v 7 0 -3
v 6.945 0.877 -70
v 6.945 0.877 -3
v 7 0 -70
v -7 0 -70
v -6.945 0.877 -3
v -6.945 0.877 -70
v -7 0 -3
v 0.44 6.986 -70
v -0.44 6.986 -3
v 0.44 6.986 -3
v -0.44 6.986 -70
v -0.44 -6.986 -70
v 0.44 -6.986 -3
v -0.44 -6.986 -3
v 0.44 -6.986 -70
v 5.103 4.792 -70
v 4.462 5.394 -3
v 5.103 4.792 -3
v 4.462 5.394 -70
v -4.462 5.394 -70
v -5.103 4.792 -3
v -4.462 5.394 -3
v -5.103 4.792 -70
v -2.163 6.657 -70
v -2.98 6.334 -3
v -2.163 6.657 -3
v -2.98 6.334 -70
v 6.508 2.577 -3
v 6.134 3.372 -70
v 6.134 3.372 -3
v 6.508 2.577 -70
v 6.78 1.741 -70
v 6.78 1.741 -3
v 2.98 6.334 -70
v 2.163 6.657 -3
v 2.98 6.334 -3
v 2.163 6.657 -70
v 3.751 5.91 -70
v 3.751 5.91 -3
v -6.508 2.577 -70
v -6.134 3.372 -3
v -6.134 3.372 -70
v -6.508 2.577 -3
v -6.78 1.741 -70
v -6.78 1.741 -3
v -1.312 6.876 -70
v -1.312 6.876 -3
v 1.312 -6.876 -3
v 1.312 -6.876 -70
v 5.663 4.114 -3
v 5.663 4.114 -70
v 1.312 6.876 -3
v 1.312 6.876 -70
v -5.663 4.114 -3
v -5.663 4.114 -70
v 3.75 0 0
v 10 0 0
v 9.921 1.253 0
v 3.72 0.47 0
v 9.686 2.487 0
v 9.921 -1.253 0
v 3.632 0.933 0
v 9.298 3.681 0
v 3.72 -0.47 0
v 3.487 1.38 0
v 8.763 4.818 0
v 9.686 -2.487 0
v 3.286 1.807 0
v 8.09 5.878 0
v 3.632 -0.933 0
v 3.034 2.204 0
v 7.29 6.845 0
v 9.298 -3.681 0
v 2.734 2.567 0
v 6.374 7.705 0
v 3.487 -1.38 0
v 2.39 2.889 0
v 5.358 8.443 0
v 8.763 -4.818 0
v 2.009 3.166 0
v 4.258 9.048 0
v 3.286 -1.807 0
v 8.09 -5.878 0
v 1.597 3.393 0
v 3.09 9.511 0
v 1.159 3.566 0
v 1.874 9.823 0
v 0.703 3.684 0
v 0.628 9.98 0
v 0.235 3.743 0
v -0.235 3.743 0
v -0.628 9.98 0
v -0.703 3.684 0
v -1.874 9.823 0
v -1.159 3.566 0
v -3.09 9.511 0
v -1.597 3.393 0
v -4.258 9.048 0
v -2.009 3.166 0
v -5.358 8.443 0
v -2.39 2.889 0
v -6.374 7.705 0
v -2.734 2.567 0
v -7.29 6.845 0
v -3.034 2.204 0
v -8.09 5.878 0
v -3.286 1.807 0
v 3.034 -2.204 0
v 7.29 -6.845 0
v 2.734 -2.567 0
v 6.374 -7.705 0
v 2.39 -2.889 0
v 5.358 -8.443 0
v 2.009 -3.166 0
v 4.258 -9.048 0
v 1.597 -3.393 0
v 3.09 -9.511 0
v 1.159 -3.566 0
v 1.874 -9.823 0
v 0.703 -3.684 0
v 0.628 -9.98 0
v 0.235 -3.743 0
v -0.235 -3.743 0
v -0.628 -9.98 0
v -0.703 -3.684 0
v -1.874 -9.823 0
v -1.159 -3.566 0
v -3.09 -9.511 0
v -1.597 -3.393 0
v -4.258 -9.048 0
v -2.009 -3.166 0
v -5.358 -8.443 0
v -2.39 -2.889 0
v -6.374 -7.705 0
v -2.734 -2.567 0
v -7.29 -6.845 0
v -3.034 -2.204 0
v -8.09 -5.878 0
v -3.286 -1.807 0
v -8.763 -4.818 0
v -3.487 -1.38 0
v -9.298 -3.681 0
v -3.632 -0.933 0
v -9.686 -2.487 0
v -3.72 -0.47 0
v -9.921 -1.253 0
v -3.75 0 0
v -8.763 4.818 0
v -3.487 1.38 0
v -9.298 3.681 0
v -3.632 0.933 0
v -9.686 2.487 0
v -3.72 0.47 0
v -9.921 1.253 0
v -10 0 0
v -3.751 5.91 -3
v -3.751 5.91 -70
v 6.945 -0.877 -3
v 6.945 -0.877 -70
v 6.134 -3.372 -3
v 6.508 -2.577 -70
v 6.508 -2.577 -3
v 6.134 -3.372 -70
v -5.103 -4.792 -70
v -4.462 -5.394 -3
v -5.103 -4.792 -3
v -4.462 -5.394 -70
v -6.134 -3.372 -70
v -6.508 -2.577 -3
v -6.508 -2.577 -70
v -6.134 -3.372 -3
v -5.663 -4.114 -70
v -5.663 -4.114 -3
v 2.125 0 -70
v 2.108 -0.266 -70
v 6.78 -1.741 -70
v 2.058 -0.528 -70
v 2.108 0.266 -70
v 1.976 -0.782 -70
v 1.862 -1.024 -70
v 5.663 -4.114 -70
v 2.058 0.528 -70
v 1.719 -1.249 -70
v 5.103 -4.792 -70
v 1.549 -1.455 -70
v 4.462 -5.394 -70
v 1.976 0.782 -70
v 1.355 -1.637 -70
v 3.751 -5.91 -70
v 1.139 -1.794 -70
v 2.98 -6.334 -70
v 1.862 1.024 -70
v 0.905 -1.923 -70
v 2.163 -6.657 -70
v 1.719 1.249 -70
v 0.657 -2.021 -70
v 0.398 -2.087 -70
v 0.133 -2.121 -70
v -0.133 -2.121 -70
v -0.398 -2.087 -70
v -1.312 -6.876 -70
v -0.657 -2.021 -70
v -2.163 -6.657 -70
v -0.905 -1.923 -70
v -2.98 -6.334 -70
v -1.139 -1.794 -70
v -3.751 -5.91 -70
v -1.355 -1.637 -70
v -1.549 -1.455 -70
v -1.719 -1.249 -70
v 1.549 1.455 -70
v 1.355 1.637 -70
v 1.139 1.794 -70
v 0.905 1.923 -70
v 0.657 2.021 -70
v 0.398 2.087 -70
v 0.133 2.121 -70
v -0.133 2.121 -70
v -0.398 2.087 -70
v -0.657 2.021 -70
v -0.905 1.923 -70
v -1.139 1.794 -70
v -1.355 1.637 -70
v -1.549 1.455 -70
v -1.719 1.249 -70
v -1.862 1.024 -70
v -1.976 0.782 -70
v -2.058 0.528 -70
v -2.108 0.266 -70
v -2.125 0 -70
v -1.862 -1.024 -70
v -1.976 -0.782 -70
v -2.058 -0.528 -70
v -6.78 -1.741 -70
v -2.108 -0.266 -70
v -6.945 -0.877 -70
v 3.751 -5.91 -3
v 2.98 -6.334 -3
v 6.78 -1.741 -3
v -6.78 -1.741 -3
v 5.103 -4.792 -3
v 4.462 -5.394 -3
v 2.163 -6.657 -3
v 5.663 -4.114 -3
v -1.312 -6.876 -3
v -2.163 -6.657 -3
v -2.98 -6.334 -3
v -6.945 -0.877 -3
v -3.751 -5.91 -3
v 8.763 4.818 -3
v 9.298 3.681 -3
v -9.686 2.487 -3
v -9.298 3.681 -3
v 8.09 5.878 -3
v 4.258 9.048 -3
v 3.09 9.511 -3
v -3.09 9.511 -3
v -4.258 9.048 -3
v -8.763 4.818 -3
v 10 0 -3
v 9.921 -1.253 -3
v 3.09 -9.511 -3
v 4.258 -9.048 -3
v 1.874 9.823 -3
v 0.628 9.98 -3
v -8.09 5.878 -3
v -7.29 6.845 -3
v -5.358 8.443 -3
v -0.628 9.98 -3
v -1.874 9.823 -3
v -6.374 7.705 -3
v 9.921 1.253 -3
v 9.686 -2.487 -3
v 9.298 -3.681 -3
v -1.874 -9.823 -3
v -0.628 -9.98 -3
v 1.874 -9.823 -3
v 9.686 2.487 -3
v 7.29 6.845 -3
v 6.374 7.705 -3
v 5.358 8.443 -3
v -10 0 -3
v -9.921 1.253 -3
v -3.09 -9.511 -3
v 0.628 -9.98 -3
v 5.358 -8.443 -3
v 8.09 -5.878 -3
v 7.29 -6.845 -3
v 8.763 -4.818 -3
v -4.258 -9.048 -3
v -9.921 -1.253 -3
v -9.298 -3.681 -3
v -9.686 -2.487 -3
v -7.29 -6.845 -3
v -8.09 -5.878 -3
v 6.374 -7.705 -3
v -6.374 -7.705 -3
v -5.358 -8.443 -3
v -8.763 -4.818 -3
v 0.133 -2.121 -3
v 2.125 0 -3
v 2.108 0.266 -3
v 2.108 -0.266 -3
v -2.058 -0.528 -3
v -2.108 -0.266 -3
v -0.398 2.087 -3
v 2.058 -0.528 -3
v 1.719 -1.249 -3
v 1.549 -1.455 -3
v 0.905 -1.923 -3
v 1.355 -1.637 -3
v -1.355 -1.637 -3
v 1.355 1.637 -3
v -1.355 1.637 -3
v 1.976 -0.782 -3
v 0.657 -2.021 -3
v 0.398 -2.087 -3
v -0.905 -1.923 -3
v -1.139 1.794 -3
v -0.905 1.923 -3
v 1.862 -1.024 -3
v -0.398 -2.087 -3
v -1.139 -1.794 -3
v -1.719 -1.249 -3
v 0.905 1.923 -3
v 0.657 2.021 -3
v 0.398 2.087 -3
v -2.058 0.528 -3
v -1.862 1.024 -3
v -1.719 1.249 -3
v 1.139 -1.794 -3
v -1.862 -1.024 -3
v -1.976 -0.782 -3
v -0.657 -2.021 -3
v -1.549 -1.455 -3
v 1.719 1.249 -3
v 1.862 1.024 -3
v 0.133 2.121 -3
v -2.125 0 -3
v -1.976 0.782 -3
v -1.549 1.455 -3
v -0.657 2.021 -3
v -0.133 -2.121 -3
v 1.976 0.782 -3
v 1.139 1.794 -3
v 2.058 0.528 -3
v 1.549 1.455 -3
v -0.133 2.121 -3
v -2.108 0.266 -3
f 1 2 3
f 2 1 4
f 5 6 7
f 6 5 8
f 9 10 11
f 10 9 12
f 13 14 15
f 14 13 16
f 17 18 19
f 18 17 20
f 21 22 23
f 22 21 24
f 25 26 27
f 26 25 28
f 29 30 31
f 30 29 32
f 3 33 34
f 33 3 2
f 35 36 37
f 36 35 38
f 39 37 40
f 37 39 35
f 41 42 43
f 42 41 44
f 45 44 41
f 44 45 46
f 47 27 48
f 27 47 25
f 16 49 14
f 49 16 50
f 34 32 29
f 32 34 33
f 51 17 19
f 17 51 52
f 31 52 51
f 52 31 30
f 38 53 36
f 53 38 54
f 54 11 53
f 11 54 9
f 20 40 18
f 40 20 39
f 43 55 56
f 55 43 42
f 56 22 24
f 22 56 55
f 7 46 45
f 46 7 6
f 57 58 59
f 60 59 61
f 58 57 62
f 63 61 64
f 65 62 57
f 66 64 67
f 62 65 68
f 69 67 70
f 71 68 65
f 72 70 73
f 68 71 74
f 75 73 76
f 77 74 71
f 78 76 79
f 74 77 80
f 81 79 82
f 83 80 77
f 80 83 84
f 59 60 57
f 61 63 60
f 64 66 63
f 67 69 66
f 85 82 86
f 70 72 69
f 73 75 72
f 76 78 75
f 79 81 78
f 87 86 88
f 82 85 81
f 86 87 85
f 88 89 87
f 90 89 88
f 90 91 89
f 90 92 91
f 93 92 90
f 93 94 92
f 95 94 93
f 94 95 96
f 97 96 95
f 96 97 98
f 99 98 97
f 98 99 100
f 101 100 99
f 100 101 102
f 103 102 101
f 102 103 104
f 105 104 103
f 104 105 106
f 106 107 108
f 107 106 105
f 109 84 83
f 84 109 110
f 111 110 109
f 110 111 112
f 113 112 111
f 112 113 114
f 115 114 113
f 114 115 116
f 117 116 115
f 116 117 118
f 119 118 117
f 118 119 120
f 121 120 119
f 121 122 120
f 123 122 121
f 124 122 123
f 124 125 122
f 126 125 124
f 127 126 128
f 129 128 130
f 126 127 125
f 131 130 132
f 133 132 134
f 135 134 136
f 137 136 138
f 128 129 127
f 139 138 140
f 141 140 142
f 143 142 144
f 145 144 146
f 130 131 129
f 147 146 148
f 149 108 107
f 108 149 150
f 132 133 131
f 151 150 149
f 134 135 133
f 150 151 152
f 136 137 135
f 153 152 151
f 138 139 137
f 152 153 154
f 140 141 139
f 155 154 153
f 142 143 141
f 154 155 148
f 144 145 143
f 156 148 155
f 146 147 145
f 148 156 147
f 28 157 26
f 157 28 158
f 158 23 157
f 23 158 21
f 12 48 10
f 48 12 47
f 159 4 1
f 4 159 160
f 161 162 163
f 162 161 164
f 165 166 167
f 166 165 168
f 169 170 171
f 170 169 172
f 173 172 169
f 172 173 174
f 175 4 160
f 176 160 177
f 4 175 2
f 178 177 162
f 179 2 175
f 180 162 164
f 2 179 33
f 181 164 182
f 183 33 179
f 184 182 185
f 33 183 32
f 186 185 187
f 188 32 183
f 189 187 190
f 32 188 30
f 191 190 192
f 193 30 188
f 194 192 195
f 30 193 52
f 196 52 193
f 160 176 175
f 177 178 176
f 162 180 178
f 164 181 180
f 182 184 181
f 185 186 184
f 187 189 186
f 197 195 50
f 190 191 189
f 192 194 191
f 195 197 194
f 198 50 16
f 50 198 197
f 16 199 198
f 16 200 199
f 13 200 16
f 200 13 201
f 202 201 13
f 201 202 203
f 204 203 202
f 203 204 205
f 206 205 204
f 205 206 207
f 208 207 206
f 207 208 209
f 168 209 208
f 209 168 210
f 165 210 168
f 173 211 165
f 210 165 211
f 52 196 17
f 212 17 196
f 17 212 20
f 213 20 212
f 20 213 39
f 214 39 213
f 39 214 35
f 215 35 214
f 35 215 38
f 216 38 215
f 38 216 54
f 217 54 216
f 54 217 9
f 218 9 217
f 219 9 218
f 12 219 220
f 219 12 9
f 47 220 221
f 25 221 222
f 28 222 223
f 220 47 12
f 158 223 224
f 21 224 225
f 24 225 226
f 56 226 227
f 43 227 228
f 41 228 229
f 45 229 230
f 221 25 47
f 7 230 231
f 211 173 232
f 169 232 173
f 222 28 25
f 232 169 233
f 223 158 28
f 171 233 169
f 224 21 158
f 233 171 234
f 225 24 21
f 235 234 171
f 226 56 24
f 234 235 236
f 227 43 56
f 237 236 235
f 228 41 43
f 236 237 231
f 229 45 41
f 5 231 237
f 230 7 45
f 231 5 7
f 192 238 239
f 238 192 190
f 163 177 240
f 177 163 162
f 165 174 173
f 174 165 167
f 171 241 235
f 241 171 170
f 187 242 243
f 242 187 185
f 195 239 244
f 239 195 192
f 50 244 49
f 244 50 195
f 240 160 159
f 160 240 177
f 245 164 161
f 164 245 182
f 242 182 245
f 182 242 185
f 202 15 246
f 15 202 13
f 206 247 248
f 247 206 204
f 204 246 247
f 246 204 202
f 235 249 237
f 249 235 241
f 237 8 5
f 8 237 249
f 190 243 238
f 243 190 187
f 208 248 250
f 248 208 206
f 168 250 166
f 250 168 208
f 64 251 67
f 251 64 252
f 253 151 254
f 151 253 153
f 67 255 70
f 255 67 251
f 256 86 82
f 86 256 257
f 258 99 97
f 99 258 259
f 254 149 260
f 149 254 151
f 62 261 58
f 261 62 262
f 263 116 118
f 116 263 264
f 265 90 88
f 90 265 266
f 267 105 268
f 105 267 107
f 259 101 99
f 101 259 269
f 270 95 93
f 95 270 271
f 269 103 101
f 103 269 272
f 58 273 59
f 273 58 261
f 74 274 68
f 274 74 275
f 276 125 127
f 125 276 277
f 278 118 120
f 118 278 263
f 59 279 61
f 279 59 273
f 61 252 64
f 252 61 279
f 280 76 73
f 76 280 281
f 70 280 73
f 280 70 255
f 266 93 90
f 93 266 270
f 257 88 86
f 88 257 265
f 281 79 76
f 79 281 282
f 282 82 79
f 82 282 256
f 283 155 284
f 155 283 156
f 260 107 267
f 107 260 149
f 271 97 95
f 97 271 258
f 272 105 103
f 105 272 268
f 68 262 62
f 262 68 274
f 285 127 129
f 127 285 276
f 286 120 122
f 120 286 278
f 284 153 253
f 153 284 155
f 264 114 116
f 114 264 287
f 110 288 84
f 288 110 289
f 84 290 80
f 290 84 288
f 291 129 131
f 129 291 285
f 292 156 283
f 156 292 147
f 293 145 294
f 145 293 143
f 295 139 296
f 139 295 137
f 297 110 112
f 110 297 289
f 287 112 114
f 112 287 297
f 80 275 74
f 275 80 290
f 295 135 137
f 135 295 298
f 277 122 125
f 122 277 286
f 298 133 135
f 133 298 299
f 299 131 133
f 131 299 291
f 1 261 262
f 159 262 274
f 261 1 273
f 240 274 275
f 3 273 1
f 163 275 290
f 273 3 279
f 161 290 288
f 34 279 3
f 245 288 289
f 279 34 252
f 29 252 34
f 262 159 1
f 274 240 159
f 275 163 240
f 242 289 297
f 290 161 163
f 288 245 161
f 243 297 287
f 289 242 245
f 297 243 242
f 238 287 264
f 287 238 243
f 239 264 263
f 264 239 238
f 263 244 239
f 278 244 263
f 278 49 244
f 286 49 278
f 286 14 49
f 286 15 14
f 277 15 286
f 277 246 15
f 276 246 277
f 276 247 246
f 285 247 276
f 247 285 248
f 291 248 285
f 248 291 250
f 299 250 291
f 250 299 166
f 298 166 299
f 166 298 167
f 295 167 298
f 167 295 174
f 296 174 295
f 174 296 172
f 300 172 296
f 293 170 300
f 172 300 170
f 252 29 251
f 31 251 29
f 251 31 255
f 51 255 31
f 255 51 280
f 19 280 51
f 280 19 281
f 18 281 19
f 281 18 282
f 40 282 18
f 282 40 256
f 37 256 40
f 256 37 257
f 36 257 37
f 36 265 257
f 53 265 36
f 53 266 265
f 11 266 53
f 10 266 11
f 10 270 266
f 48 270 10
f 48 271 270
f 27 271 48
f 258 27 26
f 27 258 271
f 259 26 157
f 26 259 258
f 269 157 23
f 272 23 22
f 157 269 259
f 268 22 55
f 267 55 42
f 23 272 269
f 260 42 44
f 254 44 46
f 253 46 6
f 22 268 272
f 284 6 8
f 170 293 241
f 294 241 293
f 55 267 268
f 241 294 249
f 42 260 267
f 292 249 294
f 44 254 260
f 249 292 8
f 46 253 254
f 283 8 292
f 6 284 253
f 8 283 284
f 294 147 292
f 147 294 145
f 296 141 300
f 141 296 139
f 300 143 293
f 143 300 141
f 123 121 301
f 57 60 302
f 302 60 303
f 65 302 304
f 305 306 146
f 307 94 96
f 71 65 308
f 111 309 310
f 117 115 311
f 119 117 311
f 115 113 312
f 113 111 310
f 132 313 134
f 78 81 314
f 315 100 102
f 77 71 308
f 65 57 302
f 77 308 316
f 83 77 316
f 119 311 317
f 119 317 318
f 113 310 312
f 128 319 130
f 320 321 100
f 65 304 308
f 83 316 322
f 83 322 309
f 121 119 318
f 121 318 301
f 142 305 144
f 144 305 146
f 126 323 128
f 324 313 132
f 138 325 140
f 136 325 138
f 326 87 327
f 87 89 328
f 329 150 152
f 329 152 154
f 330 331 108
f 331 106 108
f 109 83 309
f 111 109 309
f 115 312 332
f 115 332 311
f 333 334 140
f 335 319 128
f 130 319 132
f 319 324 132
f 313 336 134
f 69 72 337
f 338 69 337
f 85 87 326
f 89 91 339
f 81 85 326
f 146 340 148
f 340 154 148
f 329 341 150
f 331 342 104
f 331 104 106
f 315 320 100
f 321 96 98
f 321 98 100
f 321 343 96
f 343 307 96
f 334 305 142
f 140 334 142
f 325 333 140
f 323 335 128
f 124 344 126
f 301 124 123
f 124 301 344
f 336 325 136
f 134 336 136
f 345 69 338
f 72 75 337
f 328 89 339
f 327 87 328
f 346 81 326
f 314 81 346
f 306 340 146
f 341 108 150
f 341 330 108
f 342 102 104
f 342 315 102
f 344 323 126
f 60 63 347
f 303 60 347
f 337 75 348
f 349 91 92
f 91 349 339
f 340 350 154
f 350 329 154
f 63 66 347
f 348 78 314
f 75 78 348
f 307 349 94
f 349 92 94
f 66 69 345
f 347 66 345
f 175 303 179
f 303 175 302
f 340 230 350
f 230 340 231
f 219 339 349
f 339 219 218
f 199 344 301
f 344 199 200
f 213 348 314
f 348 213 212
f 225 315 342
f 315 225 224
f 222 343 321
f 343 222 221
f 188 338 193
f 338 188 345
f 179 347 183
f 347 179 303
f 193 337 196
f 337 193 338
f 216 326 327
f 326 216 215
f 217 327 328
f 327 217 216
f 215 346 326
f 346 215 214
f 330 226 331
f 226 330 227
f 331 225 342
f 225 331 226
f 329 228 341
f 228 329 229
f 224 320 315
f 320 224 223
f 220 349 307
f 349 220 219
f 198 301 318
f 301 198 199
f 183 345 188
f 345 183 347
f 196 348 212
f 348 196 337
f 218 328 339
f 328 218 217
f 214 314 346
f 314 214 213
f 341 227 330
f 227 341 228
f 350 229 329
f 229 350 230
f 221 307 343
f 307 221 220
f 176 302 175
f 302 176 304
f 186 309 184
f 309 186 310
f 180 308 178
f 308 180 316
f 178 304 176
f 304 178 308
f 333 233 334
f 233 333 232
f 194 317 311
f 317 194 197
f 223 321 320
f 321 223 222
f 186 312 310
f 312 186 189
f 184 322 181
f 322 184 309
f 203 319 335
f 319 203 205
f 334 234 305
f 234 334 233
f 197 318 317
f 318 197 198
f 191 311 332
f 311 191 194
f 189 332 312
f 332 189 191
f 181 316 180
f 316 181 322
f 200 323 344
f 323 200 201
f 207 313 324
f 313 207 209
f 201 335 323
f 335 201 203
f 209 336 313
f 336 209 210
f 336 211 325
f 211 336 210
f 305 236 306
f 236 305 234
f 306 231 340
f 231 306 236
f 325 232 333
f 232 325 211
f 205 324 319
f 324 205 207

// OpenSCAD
$fn = 50;


difference() {
	union() {
		translate(v = [0, 0, -70.0000000000]) {
			cylinder(h = 70, r = 7.0000000000);
		}
		translate(v = [0, 0, -3.0000000000]) {
			cylinder(h = 3, r = 10.0000000000);
		}
	}
	union() {
		translate(v = [0, 0, 0]) {
			rotate(a = [0, 0, 0]) {
				difference() {
					union() {
						#translate(v = [0, 0, -70.0000000000]) {
							cylinder(h = 70, r = 2.0000000000);
						}
						#translate(v = [0, 0, -3]) {
							cylinder(h = 3, r1 = 2.1250000000, r2 = 3.7500000000);
						}
						#translate(v = [0, 0, -70.0000000000]) {
							cylinder(h = 70, r = 2.1250000000);
						}
						#translate(v = [0, 0, -70.0000000000]) {
							cylinder(h = 70, r = 2.0000000000);
						}
					}
					union();
				}
			}
		}
	}
}
